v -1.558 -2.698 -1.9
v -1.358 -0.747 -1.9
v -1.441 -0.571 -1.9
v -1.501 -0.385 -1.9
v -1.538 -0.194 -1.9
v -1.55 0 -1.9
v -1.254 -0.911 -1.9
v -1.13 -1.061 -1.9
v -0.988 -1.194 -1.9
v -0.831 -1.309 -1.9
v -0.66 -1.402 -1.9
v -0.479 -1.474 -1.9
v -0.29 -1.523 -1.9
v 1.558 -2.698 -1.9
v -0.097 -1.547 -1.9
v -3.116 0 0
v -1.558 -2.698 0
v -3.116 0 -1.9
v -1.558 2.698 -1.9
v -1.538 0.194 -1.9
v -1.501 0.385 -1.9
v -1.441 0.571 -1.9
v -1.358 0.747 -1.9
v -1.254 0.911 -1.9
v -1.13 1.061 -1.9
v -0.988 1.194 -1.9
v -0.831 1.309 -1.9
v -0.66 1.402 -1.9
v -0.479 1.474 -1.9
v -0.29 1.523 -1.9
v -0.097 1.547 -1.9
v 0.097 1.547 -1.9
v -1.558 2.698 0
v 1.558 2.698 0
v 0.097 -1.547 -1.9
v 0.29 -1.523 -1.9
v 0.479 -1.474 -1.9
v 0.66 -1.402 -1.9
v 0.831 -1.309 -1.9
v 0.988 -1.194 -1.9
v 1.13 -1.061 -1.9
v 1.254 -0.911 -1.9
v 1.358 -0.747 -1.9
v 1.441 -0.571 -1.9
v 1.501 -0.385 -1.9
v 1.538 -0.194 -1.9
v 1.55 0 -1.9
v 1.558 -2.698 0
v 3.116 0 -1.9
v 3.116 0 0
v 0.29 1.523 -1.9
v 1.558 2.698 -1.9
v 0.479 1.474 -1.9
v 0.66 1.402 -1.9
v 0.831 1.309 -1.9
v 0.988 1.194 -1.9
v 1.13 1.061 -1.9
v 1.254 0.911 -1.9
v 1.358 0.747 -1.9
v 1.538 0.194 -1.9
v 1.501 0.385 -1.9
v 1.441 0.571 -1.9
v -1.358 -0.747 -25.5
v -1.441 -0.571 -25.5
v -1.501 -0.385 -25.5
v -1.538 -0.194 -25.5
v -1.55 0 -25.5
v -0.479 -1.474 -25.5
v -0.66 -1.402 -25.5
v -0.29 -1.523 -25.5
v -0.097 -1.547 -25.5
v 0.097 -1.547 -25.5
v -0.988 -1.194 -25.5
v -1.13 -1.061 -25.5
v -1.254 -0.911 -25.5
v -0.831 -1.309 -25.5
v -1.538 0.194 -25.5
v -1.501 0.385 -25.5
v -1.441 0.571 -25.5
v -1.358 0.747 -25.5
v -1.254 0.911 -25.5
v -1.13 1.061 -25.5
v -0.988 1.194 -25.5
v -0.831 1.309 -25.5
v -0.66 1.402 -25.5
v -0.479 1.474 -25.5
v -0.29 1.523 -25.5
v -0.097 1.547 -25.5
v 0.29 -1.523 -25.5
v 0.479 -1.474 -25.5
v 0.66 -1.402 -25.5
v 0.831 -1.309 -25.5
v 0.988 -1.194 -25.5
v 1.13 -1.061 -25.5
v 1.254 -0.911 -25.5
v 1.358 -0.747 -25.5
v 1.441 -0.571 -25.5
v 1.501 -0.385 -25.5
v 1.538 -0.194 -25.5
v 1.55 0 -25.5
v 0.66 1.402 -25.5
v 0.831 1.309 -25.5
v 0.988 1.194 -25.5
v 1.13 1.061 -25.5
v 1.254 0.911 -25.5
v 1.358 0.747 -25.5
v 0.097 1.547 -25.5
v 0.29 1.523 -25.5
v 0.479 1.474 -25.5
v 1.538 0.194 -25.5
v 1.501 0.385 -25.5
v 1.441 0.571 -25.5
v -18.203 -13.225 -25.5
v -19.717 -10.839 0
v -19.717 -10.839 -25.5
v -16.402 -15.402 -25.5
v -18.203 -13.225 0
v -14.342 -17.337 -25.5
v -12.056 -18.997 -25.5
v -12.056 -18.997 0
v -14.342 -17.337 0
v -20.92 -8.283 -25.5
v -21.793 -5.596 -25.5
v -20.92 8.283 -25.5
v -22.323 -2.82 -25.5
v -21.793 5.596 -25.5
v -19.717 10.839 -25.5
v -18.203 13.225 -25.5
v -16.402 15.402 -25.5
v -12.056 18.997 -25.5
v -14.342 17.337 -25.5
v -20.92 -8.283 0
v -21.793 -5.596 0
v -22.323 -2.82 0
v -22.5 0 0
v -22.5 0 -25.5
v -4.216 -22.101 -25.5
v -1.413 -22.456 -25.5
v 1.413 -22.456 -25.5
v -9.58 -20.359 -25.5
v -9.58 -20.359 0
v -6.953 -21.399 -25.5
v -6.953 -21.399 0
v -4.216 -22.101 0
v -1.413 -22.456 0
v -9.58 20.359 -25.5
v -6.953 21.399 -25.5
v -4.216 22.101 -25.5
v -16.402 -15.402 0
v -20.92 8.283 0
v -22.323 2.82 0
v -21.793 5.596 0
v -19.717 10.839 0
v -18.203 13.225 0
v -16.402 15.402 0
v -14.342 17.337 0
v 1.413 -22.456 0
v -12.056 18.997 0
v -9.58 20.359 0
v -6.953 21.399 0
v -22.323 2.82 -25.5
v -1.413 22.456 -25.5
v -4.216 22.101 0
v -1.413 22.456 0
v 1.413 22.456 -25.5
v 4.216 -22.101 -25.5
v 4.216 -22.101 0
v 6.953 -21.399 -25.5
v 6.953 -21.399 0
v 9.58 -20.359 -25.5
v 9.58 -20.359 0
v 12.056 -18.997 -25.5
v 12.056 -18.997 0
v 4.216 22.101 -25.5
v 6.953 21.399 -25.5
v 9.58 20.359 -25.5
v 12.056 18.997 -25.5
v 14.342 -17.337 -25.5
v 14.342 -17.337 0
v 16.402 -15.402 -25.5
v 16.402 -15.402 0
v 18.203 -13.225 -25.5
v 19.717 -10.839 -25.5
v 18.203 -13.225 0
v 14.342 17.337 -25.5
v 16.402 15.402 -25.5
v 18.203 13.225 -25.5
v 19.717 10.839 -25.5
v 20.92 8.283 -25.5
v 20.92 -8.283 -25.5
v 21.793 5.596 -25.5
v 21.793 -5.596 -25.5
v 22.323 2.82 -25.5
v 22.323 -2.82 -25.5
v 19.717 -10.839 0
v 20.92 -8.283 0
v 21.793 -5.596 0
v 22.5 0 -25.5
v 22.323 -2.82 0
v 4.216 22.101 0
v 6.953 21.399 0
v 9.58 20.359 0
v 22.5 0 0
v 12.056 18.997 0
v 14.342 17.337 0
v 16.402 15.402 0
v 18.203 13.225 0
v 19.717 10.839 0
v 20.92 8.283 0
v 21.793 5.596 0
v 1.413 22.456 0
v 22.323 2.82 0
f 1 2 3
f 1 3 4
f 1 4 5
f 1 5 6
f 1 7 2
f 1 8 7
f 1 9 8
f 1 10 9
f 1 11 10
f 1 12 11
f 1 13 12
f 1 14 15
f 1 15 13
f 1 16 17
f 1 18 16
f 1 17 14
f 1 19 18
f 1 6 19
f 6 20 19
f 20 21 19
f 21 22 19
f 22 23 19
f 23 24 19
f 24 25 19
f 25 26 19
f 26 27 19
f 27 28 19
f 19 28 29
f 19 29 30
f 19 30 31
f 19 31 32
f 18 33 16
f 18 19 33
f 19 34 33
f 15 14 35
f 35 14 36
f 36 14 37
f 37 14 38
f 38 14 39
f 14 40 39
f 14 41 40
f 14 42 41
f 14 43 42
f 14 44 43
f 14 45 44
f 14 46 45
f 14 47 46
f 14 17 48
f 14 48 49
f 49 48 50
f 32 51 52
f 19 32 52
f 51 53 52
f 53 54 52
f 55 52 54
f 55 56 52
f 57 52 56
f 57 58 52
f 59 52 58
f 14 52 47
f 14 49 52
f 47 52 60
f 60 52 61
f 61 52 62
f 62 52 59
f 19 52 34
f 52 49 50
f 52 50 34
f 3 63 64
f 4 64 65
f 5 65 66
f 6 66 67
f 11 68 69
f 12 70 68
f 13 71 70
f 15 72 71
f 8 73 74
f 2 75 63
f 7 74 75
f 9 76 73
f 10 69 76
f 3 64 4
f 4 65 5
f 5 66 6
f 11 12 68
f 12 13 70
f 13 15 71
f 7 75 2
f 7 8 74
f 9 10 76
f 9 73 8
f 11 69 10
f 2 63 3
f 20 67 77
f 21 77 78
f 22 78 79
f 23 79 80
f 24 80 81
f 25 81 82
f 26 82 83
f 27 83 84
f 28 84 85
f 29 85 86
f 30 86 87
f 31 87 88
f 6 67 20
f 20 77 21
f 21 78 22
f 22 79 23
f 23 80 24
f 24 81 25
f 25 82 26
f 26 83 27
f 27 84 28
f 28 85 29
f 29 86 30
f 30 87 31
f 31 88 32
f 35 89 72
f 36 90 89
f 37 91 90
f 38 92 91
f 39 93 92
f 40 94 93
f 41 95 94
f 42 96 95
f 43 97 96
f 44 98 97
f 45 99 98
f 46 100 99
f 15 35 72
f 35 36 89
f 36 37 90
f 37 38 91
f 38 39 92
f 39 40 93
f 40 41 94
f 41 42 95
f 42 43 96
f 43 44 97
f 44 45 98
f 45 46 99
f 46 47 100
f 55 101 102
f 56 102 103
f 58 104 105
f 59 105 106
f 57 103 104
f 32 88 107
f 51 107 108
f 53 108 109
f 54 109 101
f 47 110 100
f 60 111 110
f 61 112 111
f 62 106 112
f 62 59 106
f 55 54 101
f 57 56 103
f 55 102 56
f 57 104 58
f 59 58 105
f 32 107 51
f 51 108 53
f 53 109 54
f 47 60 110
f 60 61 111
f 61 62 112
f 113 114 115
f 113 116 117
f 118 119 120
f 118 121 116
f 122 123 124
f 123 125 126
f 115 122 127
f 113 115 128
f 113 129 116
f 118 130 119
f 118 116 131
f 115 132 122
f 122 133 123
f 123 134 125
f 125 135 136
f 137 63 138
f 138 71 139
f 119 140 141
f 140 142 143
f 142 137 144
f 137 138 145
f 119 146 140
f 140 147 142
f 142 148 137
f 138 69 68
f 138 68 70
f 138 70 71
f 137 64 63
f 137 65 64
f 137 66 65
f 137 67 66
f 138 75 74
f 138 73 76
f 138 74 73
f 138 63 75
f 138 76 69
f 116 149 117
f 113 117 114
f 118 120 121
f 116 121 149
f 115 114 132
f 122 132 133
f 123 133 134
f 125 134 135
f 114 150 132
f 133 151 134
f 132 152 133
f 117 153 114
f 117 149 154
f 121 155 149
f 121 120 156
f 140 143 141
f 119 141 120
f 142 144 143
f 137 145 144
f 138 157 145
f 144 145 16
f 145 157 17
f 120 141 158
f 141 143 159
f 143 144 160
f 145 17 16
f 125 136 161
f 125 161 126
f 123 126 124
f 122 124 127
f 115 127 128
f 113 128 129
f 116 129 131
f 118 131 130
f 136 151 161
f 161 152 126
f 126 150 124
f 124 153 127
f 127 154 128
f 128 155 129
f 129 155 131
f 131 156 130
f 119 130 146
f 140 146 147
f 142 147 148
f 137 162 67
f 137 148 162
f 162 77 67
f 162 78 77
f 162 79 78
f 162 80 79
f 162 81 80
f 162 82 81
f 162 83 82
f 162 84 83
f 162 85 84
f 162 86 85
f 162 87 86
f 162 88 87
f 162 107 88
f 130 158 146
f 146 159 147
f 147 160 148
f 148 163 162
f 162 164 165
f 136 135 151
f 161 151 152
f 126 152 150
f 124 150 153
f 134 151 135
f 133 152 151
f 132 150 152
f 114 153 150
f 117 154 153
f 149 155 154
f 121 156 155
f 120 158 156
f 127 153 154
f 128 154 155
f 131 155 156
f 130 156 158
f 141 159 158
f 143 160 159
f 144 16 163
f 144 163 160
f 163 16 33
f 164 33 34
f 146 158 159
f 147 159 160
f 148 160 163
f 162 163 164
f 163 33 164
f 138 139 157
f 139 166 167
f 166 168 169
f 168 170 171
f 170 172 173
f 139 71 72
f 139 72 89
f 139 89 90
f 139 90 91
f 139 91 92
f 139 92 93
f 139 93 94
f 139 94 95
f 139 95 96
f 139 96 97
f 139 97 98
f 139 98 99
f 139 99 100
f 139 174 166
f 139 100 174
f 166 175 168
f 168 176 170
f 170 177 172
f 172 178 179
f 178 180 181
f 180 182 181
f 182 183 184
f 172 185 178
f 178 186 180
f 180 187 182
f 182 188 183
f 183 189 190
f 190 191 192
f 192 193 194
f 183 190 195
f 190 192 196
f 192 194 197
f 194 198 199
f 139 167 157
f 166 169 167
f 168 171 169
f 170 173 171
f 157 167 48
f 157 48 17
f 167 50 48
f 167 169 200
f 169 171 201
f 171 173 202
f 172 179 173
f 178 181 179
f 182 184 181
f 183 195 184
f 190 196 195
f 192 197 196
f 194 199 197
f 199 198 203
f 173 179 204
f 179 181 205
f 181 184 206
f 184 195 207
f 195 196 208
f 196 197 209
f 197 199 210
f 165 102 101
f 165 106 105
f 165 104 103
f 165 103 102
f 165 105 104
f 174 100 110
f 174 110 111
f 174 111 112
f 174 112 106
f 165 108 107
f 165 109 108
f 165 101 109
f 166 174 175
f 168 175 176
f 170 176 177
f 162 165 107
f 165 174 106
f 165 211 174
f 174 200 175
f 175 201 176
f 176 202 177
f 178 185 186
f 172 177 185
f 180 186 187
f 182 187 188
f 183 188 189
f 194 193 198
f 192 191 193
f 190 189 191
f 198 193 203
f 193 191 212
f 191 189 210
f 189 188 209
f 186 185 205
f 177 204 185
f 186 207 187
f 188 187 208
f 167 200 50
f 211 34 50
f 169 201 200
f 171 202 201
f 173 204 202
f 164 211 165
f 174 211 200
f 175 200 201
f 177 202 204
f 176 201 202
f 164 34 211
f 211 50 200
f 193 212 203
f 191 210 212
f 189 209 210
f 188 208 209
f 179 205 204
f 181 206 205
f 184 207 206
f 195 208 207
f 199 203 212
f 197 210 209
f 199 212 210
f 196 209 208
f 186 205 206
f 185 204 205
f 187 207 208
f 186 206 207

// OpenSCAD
$fn = 50;

difference() {
	union() {
		translate(v = [0, 0, -25.5]) {
			cylinder(h = 25.5, r = 22.5);
		}
	}
	union() {
		translate(v = [0, 0, 0]) {
			rotate(a = [0, 0, 0]) {
				difference() {
					union() {
						translate(v = [0, 0, -1.9]) {
							linear_extrude(height = 1.9) {
								polygon(points = [[3.1158, 0.0], [1.5579000000000005, 2.698361953111554], [-1.5578999999999994, 2.6983619531115544], [-3.1158, 3.815754496783323e-16], [-1.5579000000000014, -2.6983619531115535], [1.557899999999998, -2.6983619531115552]]);
							}
						}
					}
					union();
				}
			}
		}
		#translate(v = [0, 0, -100.0]) {
			cylinder(h = 200, r = 1.55);
		}
	}
}
